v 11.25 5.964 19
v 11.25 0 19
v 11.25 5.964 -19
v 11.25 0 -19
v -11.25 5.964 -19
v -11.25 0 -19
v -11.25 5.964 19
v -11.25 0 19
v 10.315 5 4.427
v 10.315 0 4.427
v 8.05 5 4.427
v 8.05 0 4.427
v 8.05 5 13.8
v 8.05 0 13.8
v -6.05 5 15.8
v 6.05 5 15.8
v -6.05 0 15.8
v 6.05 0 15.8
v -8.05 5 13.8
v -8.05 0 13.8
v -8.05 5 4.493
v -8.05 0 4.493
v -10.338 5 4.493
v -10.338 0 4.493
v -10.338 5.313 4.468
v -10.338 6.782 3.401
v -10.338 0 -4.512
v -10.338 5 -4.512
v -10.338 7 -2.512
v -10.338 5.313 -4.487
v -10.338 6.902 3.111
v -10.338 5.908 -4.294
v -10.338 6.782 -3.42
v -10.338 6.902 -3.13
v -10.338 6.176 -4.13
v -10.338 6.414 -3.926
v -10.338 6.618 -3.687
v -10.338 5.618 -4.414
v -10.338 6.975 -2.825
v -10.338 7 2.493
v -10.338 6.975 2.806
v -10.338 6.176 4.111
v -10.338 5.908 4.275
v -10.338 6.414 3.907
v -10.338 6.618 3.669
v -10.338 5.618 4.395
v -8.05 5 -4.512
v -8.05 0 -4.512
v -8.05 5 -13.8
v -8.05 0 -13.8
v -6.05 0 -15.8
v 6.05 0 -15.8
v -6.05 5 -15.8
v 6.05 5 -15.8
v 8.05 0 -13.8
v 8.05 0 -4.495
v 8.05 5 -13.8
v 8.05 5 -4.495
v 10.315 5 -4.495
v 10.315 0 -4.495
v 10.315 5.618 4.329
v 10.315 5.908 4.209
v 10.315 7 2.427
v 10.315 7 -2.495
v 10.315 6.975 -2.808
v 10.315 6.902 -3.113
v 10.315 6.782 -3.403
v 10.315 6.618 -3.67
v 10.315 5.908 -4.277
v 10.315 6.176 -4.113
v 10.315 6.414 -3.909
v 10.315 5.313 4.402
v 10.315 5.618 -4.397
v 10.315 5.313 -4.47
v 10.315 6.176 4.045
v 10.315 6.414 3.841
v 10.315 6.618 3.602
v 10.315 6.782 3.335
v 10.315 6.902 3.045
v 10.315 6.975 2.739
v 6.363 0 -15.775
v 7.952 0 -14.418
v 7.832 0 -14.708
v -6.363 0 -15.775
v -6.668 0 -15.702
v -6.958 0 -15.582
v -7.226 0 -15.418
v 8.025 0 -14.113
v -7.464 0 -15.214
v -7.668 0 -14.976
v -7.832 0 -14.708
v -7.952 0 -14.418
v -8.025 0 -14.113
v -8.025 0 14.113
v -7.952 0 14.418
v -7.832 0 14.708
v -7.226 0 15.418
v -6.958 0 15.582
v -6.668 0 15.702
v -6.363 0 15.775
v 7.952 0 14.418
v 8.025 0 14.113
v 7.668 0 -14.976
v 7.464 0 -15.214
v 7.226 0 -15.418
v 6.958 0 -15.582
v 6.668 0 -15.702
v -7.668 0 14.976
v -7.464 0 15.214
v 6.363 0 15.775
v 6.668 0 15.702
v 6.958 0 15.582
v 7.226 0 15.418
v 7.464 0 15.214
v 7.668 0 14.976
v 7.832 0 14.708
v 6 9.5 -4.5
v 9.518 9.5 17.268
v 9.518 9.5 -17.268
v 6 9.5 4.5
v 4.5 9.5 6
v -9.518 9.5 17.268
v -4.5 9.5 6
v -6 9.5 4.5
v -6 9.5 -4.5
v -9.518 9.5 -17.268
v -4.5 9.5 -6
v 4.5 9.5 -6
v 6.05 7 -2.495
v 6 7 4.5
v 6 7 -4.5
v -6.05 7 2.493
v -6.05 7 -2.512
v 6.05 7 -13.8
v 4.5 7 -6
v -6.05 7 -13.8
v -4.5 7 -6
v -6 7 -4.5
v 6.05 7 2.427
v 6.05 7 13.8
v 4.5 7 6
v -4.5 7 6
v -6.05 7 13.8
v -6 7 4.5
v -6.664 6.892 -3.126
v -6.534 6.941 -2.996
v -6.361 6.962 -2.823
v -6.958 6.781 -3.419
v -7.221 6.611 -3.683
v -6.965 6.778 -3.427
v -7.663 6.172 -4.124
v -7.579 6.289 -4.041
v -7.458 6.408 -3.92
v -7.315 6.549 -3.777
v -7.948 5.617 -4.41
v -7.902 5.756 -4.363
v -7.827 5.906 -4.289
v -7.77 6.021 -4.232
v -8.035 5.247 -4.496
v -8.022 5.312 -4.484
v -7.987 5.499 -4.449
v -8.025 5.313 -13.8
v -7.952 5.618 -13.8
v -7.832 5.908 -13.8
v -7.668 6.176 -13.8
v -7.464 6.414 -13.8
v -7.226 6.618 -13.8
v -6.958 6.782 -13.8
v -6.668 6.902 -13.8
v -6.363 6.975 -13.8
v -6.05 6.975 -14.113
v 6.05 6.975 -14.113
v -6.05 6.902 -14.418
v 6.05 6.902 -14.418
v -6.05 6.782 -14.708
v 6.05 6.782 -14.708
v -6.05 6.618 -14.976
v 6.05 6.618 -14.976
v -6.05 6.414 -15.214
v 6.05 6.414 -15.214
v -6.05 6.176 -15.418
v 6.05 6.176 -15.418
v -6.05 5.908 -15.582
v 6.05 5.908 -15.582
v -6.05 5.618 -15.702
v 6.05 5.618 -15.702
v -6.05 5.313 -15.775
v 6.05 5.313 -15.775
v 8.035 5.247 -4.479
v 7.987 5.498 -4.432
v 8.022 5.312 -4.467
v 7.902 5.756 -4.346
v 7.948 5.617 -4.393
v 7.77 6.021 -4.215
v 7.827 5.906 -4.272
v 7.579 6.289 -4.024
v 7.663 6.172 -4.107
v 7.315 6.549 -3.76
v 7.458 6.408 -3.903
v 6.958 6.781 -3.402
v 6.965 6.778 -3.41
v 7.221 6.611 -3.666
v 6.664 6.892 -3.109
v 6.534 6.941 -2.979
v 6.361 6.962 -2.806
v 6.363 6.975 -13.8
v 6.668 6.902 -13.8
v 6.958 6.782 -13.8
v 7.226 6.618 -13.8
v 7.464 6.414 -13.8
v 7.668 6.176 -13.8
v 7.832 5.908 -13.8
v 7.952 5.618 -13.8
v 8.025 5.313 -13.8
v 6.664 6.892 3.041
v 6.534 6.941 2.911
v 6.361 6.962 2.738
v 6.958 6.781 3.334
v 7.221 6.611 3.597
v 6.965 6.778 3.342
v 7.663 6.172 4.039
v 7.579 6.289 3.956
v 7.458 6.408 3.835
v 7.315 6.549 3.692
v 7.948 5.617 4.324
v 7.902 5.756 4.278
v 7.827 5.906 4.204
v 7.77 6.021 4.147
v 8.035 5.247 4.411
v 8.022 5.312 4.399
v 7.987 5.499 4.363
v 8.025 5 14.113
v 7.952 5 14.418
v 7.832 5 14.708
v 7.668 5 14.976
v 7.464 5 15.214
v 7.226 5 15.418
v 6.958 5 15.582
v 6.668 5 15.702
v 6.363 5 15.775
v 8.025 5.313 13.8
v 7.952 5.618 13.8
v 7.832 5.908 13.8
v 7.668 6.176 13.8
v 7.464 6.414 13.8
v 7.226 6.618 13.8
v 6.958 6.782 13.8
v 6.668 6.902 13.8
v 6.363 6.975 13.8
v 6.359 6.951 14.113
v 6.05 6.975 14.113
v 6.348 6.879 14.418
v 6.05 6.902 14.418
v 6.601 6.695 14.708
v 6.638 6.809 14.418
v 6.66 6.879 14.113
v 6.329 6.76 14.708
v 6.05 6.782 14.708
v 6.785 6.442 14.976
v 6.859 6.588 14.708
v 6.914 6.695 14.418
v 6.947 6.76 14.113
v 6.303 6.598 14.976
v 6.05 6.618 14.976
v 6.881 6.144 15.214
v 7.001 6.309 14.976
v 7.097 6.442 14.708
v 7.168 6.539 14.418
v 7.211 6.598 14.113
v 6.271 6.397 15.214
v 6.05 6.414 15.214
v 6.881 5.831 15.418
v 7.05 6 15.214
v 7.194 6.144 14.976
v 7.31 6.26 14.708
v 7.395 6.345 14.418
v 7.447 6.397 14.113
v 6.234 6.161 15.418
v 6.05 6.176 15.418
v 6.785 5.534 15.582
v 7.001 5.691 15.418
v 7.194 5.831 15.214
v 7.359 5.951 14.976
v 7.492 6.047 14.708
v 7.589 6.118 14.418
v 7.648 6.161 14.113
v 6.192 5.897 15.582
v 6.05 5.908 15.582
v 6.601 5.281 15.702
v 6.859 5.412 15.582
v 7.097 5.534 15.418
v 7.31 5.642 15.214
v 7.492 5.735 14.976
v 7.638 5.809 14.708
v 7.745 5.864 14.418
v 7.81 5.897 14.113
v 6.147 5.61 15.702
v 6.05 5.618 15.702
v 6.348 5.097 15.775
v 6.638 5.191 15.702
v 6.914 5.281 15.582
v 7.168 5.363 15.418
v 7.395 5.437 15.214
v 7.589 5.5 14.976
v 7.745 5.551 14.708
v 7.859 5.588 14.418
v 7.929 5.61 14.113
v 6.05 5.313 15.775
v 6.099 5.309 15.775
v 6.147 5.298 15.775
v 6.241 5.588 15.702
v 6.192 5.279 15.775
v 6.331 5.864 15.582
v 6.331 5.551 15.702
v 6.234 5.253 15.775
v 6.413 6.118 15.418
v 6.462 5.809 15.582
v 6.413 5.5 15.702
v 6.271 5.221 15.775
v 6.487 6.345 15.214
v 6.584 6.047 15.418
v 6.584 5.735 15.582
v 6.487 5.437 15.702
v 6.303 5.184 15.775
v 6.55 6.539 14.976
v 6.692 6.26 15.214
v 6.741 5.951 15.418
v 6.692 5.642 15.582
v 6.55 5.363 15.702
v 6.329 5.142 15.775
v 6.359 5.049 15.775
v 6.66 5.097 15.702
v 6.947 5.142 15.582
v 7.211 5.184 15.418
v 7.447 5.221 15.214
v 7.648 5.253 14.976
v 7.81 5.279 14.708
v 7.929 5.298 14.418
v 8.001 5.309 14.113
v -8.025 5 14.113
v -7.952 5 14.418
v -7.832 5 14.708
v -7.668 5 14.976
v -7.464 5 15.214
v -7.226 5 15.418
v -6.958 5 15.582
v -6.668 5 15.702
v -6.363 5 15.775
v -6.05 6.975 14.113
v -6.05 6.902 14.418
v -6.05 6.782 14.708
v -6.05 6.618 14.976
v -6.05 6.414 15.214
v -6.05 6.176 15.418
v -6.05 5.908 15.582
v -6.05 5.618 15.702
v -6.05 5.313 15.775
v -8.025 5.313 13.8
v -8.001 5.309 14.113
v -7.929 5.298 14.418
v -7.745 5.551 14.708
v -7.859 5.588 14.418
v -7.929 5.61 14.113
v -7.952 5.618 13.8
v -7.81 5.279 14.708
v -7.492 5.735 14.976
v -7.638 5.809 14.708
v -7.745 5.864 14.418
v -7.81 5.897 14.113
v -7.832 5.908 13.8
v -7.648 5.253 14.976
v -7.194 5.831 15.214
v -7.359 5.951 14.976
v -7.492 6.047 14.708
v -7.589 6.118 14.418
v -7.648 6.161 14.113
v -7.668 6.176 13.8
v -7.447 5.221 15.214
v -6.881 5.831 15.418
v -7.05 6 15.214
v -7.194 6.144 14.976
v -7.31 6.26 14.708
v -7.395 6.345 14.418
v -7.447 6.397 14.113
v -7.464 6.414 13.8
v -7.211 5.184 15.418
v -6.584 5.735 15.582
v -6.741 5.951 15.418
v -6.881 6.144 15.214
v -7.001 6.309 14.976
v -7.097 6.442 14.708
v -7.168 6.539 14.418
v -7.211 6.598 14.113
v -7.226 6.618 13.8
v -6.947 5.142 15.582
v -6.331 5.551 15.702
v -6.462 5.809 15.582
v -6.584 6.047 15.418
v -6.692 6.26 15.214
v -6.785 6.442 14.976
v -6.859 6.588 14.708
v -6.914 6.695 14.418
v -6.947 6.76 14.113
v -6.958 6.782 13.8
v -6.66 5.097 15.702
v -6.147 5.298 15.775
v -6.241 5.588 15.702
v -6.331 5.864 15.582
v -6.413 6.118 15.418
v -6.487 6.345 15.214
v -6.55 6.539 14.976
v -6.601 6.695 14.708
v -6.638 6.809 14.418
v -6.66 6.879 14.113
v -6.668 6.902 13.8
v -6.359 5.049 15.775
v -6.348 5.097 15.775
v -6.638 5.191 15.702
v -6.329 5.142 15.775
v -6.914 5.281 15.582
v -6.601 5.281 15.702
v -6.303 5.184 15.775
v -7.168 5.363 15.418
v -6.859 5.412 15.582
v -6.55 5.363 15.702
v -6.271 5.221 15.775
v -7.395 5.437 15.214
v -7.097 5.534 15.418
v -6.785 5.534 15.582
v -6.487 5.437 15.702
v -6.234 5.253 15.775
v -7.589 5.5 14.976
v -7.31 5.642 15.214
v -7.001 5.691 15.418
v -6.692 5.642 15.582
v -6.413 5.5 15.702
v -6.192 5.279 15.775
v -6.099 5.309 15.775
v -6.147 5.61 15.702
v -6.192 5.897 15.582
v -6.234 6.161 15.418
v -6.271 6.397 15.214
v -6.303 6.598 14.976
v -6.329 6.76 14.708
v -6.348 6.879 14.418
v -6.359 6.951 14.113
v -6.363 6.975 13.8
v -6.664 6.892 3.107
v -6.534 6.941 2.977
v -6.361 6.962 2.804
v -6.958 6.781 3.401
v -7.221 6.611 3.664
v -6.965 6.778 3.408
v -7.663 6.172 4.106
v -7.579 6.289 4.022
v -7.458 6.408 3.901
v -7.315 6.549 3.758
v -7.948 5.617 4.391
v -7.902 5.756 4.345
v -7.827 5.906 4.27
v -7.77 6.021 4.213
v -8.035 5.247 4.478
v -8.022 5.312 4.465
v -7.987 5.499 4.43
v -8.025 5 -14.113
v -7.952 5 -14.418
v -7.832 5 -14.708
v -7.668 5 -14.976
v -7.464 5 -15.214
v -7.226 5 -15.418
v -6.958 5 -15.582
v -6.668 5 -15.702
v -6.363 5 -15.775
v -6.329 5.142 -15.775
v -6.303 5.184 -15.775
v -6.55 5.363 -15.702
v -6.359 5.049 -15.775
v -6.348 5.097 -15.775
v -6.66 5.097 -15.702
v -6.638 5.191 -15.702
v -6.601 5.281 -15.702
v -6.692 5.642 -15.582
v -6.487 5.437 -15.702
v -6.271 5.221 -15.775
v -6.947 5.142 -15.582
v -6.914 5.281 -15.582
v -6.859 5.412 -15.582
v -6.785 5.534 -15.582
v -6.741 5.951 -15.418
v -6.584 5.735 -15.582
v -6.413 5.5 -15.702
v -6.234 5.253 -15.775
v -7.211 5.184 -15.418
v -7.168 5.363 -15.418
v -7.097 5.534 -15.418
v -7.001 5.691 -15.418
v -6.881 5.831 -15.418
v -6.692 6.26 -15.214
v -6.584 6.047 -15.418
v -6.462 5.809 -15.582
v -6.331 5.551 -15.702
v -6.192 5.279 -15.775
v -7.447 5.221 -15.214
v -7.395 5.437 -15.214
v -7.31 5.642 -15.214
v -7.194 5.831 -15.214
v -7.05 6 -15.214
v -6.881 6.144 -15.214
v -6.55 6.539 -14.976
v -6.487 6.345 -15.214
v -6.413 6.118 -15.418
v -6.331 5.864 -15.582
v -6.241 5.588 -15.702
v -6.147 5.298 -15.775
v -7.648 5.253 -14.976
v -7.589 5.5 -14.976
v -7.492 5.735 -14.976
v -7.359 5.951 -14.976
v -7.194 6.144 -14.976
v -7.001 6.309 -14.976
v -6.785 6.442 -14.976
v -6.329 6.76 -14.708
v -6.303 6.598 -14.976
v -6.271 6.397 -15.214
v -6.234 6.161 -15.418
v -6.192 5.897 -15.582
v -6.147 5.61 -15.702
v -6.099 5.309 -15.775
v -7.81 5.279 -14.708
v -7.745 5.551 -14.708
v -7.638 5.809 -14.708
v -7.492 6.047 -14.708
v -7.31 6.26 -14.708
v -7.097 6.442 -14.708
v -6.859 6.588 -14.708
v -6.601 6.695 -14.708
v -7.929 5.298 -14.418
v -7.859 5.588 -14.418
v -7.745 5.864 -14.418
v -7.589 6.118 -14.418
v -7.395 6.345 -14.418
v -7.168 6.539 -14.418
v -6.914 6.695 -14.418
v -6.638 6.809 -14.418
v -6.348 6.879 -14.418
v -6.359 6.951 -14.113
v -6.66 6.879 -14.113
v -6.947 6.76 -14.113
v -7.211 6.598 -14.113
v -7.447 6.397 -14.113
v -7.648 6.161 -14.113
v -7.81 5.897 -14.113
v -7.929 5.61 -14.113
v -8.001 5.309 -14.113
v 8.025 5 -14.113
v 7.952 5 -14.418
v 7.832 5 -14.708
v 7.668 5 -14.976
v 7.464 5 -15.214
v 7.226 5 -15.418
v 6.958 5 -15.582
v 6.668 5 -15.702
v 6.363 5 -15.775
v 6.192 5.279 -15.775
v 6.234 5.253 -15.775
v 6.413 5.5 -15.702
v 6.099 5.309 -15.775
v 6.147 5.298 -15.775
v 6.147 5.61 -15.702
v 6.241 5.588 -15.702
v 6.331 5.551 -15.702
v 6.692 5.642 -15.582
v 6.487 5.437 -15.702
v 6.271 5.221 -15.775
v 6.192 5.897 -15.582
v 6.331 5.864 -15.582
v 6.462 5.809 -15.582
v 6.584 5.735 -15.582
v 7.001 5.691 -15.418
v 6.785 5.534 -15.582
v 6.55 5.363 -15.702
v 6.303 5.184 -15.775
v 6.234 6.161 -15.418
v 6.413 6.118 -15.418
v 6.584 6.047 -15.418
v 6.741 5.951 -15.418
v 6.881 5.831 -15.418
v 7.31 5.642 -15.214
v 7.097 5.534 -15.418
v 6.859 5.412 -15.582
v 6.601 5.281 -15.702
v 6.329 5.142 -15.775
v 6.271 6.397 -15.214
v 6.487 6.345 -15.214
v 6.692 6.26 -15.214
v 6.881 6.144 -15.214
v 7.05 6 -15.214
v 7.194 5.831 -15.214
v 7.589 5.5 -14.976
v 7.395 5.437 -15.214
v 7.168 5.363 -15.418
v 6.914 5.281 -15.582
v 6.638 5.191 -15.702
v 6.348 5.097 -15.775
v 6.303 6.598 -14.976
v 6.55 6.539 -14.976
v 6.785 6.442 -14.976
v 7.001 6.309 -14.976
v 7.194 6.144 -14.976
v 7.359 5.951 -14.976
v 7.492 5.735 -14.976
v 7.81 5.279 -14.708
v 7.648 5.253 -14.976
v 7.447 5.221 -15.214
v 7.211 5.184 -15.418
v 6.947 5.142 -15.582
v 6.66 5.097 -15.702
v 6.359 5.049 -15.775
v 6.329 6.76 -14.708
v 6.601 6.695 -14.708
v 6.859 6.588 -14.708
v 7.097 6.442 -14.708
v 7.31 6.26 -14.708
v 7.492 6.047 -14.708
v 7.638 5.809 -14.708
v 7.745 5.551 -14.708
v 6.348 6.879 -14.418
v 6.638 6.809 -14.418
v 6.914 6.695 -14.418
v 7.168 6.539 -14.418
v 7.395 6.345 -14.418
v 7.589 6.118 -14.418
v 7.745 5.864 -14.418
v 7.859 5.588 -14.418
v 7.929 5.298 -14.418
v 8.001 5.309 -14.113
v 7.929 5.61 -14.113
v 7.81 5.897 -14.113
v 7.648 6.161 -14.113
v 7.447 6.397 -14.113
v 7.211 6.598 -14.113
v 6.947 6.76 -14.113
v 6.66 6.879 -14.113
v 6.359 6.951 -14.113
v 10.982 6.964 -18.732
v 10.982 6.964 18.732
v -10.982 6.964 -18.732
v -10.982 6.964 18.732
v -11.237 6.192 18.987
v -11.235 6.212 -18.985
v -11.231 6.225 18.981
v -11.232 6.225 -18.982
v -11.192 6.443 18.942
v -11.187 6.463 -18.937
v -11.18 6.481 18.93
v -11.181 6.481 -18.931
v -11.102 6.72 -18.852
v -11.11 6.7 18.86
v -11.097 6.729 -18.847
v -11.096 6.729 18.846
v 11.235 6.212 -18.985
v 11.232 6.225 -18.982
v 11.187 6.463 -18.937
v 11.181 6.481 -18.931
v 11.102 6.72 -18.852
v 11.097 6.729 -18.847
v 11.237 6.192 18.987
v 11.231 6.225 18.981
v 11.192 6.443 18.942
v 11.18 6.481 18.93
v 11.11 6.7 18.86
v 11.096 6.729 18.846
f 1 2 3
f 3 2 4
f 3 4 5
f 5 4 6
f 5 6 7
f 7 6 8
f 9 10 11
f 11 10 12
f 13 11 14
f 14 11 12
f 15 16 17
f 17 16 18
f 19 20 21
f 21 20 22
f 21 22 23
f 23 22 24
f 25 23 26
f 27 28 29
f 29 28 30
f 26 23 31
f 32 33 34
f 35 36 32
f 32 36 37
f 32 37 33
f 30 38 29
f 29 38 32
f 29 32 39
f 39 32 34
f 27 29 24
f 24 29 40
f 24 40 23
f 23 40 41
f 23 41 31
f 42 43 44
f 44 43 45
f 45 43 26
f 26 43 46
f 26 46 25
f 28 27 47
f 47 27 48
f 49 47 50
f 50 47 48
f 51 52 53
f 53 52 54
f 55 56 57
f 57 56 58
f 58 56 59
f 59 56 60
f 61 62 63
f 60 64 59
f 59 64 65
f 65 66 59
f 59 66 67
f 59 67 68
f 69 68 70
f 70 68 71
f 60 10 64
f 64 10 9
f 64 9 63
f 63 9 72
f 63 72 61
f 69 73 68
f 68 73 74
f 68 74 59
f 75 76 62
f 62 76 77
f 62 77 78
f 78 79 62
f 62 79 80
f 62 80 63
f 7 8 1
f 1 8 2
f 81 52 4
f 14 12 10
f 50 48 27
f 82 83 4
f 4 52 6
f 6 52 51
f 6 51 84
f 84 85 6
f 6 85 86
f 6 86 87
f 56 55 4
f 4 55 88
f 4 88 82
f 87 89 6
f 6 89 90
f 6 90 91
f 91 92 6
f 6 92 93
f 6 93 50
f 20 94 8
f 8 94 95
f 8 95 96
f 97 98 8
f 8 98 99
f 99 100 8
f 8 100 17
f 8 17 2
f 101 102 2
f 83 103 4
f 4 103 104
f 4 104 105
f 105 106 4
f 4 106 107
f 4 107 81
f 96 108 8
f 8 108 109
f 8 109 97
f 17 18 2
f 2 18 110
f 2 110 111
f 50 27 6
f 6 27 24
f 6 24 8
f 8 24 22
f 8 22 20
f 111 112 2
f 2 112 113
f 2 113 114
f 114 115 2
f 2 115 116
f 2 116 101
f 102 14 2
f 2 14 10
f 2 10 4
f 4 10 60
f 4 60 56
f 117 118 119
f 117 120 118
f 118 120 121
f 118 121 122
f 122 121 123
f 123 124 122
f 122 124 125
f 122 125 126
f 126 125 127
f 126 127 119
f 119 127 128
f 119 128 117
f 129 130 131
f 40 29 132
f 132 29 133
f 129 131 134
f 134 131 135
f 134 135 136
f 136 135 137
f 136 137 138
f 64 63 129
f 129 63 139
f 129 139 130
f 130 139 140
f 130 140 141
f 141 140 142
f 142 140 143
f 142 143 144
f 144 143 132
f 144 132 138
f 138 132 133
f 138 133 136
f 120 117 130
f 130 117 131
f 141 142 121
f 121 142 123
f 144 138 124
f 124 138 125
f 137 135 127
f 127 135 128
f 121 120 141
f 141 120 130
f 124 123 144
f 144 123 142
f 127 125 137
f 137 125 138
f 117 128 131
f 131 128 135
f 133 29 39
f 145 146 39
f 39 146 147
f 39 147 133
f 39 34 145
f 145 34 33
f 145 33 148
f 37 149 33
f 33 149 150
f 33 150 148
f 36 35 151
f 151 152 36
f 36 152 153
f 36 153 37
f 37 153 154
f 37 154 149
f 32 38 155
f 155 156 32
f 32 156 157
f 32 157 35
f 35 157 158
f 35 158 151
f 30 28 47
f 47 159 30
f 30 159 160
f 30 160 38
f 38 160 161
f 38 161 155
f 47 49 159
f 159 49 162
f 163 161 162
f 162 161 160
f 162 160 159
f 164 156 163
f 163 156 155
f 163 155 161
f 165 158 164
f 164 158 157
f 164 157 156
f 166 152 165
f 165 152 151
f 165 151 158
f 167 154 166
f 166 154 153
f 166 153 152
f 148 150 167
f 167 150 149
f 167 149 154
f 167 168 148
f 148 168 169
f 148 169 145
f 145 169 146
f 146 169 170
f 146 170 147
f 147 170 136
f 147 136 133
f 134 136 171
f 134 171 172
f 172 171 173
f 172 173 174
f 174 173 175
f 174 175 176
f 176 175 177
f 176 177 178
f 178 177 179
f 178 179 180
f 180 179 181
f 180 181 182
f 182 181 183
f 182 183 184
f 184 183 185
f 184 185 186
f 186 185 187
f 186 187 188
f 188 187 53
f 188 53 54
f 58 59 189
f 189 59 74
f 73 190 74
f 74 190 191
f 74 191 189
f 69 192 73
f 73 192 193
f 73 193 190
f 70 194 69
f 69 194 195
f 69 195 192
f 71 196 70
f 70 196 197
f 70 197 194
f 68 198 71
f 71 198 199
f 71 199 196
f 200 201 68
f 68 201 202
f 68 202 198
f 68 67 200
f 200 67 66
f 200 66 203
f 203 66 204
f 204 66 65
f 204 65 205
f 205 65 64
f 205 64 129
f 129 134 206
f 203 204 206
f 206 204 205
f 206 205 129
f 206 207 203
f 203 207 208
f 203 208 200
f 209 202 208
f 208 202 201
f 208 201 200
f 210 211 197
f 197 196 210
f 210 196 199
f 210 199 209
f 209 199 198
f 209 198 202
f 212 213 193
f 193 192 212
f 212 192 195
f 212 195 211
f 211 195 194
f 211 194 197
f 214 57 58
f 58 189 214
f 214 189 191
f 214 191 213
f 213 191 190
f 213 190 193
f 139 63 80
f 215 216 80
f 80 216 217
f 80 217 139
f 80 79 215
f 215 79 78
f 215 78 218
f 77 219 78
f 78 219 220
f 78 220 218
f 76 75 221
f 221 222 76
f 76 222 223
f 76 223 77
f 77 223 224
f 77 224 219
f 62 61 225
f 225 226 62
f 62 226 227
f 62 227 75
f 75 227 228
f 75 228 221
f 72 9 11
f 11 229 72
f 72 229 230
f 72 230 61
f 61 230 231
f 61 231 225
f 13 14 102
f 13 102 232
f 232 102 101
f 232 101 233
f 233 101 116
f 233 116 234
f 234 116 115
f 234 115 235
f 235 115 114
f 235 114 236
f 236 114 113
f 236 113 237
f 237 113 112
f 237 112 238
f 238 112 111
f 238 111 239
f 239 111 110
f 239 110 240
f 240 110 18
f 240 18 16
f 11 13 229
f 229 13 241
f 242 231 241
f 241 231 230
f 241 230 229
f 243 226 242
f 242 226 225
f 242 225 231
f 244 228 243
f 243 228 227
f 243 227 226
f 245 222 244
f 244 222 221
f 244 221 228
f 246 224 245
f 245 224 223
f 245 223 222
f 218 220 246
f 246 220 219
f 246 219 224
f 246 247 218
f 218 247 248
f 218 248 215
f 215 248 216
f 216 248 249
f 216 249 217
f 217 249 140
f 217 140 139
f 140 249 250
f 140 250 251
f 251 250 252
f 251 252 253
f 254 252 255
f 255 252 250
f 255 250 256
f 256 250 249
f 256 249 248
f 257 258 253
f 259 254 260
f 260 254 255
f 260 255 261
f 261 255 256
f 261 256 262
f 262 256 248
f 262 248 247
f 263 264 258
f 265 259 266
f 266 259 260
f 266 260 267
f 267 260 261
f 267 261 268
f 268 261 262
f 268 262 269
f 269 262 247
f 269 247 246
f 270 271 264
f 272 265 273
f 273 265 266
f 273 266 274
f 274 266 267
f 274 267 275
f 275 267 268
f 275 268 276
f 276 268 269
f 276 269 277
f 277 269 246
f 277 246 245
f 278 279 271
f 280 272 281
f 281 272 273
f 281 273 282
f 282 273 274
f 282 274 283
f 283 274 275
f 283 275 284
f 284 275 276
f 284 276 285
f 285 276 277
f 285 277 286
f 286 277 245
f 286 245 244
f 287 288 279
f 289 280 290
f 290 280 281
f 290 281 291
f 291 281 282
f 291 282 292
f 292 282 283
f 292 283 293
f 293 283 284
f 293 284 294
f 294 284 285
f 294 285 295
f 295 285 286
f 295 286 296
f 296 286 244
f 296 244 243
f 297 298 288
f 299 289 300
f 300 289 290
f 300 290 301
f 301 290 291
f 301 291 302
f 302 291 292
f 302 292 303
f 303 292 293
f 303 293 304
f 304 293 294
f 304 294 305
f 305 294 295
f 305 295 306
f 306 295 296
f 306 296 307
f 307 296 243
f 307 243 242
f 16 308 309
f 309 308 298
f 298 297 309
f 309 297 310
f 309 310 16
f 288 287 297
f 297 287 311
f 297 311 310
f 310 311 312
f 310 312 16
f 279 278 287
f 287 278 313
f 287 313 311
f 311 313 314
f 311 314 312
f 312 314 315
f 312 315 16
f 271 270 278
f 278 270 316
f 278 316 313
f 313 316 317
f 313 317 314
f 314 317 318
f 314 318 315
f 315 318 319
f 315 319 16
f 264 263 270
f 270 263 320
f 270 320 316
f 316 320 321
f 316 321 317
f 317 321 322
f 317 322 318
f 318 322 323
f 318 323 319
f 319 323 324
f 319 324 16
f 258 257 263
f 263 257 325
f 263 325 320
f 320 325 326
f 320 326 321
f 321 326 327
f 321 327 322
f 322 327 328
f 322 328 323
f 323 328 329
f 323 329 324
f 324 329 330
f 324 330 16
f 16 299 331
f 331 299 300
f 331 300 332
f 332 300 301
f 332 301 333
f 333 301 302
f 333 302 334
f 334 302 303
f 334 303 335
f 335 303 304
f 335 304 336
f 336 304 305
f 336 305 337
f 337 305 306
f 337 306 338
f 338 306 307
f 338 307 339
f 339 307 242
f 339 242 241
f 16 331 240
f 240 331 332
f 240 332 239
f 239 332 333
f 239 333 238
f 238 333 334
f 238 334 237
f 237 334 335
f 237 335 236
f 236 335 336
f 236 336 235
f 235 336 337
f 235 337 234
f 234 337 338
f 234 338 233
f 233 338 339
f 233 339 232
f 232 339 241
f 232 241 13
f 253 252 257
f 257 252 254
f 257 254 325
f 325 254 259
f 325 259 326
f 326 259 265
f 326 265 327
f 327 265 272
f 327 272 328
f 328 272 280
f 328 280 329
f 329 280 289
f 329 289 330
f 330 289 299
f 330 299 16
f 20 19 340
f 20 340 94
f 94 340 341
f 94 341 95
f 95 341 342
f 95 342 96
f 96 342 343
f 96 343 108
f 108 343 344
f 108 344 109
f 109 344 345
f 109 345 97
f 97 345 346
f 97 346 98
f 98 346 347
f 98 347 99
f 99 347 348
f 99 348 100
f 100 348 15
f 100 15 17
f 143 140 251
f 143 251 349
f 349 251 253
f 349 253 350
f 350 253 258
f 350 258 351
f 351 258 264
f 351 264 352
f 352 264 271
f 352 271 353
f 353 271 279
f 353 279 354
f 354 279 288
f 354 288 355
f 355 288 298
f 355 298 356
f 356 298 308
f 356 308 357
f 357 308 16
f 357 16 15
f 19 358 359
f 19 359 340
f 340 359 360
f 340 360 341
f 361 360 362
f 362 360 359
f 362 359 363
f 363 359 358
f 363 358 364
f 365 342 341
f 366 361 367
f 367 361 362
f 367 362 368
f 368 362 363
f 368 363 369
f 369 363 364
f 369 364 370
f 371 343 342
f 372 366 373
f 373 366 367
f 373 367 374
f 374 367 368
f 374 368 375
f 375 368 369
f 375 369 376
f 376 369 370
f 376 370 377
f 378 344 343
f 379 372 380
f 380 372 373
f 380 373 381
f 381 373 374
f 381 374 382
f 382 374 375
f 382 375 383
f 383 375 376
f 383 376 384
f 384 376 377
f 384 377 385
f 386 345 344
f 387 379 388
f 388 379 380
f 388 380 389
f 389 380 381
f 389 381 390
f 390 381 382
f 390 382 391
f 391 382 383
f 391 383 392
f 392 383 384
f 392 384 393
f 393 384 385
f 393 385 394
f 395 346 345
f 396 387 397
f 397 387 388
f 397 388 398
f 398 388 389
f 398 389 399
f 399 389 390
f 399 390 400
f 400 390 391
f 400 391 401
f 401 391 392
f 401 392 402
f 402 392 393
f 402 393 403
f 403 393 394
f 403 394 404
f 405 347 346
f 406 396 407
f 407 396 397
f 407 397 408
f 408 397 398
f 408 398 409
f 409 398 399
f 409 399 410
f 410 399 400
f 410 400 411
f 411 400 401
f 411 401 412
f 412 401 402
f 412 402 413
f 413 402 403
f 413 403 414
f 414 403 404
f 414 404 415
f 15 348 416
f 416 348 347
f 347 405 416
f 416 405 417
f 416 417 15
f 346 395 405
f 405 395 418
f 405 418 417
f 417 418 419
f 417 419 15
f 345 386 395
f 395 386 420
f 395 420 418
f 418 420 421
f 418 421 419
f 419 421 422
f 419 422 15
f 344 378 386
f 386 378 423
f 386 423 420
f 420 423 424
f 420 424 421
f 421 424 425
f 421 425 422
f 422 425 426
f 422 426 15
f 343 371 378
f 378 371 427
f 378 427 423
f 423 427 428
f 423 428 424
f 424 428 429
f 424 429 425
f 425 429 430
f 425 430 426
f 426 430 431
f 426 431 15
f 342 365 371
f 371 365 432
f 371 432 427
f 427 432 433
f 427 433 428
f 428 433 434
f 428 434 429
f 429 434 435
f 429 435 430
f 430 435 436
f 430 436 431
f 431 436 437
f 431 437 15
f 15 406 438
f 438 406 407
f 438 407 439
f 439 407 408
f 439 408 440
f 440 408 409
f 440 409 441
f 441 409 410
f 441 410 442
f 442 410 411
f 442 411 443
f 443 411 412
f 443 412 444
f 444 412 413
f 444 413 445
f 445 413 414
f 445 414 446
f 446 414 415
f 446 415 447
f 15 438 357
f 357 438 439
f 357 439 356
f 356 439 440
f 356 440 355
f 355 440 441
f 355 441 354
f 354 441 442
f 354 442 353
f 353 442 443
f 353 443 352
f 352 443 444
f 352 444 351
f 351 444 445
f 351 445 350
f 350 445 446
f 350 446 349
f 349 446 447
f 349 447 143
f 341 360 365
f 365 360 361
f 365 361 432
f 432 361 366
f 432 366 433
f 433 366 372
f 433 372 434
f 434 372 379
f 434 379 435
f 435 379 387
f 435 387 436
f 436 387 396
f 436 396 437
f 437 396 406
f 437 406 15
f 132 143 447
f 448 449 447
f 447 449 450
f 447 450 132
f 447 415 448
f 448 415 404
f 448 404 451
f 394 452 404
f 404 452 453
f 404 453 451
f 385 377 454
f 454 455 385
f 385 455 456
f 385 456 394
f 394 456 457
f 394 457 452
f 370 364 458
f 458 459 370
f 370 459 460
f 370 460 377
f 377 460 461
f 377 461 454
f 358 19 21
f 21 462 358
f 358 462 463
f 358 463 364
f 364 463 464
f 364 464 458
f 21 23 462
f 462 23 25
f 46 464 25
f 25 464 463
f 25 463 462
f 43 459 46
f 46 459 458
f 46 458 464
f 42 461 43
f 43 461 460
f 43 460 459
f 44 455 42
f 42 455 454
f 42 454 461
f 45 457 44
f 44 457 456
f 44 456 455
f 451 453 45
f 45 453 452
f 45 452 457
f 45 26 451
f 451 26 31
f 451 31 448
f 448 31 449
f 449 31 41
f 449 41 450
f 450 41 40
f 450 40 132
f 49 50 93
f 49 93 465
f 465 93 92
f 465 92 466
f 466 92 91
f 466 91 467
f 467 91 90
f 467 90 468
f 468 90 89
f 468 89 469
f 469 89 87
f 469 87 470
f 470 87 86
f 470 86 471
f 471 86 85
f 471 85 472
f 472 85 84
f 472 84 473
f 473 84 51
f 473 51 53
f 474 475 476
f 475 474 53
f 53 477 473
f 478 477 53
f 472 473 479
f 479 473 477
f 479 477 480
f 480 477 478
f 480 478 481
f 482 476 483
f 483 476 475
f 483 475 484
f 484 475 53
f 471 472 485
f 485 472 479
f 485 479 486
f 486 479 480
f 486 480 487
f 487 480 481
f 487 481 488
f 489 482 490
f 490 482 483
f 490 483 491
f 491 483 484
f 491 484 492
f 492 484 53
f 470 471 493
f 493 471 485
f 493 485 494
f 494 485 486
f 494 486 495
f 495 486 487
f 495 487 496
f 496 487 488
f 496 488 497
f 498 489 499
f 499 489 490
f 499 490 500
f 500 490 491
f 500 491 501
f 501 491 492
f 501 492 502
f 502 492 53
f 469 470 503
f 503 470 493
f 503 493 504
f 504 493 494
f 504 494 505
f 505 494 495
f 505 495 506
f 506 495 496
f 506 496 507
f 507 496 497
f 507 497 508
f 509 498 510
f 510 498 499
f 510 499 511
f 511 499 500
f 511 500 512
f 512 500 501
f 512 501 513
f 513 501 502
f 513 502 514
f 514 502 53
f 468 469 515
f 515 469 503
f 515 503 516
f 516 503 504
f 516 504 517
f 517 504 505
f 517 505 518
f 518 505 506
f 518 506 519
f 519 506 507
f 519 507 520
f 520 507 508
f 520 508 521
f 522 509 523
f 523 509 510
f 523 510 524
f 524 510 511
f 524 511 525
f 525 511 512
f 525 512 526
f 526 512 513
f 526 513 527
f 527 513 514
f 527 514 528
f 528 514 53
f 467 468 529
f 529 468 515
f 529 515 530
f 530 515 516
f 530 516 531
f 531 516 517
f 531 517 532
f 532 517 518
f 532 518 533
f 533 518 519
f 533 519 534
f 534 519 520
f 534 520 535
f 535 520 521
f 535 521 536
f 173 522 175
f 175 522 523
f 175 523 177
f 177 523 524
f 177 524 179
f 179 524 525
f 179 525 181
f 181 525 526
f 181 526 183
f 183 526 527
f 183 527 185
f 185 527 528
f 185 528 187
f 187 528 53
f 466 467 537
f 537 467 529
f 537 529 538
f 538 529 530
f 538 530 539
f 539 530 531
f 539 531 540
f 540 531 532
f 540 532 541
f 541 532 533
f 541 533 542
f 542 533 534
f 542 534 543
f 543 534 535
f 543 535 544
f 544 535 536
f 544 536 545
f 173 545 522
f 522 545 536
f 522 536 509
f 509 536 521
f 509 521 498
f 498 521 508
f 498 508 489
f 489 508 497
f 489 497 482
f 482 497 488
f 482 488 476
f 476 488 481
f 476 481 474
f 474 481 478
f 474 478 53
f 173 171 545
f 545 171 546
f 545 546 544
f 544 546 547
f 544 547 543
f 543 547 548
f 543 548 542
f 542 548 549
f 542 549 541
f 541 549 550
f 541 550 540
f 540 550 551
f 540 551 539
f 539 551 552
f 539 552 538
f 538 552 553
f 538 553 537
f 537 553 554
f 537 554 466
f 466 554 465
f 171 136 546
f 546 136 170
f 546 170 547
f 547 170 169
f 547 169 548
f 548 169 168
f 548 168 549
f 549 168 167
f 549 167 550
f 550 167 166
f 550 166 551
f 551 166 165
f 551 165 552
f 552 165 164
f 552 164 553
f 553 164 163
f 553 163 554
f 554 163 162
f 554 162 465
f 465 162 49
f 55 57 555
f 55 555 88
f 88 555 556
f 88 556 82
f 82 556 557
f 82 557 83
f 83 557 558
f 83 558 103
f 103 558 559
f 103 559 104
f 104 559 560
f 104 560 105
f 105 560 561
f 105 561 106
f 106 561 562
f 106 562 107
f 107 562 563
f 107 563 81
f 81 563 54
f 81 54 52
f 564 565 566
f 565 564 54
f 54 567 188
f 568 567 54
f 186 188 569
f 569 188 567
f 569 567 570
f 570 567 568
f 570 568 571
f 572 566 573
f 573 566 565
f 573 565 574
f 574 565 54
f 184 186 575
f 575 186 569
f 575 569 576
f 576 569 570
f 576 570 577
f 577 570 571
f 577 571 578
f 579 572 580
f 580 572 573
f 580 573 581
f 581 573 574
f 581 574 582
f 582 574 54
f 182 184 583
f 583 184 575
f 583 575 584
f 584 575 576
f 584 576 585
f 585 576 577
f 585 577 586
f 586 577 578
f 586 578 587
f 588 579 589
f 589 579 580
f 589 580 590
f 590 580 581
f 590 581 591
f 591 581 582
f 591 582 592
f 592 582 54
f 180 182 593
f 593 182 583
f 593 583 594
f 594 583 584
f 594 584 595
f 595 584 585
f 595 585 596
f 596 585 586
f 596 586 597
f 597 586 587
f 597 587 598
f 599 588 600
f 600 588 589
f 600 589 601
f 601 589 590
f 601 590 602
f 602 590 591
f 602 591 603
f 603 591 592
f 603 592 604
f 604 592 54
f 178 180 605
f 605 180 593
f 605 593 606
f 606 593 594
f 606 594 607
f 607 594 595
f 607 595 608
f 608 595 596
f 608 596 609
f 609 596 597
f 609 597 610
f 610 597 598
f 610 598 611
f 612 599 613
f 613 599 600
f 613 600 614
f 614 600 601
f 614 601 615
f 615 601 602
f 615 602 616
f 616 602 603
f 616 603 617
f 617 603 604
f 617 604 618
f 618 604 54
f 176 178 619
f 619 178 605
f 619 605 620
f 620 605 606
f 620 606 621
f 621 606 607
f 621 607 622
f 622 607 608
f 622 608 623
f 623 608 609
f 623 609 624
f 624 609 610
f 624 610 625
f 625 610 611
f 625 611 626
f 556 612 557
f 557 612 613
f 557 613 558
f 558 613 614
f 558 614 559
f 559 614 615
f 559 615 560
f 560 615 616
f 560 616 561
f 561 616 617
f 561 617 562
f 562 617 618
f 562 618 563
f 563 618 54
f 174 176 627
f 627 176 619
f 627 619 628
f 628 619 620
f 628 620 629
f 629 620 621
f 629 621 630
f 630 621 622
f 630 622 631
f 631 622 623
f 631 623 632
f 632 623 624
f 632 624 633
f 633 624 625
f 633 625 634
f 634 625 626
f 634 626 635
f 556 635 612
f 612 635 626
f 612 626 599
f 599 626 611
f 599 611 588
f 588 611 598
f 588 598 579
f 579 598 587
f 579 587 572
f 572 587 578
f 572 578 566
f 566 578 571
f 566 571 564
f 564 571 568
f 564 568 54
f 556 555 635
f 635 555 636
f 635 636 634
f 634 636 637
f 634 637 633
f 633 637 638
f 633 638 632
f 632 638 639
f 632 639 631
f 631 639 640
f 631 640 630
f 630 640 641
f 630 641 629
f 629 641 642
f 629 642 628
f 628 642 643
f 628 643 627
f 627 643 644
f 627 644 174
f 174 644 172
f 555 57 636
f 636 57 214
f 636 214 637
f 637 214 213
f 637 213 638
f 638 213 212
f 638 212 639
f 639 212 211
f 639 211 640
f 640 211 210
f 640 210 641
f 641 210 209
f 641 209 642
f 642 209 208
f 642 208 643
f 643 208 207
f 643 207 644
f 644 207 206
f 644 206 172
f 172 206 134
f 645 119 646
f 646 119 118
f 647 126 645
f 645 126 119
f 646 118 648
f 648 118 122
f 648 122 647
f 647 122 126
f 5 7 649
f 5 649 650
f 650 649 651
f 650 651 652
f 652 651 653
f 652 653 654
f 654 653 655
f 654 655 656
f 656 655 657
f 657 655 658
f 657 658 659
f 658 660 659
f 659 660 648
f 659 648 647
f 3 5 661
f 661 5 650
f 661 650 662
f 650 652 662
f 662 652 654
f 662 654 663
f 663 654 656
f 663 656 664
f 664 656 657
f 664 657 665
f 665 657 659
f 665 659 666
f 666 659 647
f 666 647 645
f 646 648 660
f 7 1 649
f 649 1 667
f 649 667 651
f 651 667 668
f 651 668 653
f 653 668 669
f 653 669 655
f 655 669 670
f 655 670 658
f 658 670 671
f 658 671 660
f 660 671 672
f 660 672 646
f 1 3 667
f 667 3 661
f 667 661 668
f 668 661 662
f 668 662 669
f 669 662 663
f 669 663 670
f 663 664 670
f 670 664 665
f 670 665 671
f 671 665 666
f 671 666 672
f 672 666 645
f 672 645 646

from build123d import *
from OCP.BRepFilletAPI import BRepFilletAPI_MakeChamfer

# Parameters (mm, degrees)
SKETCH1_W           = 22.5
SKETCH1_H           = 38
BOSS_EXTRUDE2_DEPTH = 7
SKETCH2_W           = 22.5
SKETCH2_H           = 38
BOSS_EXTRUDE4_DEPTH = 2.5
SKETCH3_W           = 12
SKETCH3_H           = 12
CUT_EXTRUDE1_DEPTH  = 2.5
CHAMFER1_SIZE       = 1.5
FILLET3_R           = 2
FILLET4_R           = 2
CHAMFER2_SIZE       = 3
CHAMFER2_SIZE2      = 1.732050808
FILLET5_R           = 2


with BuildPart() as part:
    # Sketch1 → Boss-Extrude2 (new body)
    with BuildSketch(Plane(origin=(0, 0, 0), x_dir=(1, 0, 0), z_dir=(0, 1, 0))):
        Rectangle(SKETCH1_W, SKETCH1_H)
        Polygon((-8.05, -15.8), (-8.05, -4.492937268), (-10.337901284, -4.492937268), (-10.337901284, 0), (-10.337901284, 4.511829369), (-8.05, 4.511829369), (-8.05, 15.8), (8.05, 15.8), (8.05, 4.494825775), (10.314669875, 4.494825775), (10.314669875, 0), (10.314669875, -4.426605317), (8.05, -4.426605317), (8.05, -15.8), align=None, mode=Mode.SUBTRACT)
    extrude(amount=BOSS_EXTRUDE2_DEPTH)

    # Sketch2 → Boss-Extrude4 (add)
    with BuildSketch(Plane(origin=(0, 7, 0), x_dir=(1, 0, 0), z_dir=(0, 1, 0))):
        Rectangle(SKETCH2_W, SKETCH2_H)
    extrude(amount=BOSS_EXTRUDE4_DEPTH)

    # Sketch3 → Cut-Extrude1 (cut)
    with BuildSketch(Plane(origin=(0, 9.5, 0), x_dir=(1, 0, 0), z_dir=(0, 1, 0))):
        Rectangle(SKETCH3_W, SKETCH3_H)
    extrude(amount=-CUT_EXTRUDE1_DEPTH, mode=Mode.SUBTRACT)

    # Chamfer1
    chamfer1_edges = [part.edges().sort_by_distance(p)[0] for p in [
        (6, 8.25, -6),
        (6, 8.25, 6),
        (-6, 8.25, 6),
        (-6, 8.25, -6),
    ]]
    chamfer(chamfer1_edges, length=CHAMFER1_SIZE)

    # Fillet3
    fillet3_edges = [part.edges().sort_by_distance(p)[0] for p in [
        (8.05, 7, 10.113302659),
        (0, 7, 15.8),
        (-8.05, 7, 10.146468634),
        (-9.193950642, 7, 4.492937268),
        (-8.05, 3.5, 15.8),
        (8.05, 3.5, 15.8),
        (-9.193950642, 7, -4.511829369),
        (-8.05, 7, -10.155914685),
        (0, 7, -15.8),
        (8.05, 7, -10.147412887),
        (9.182334937, 7, -4.494825775),
        (9.182334937, 7, 4.426605317),
    ]]
    fillet(fillet3_edges, radius=FILLET3_R)

    # Fillet4
    # the kernel refuses this fillet: 2 mm, written as the material it adds along each edge
    with BuildSketch(Plane(origin=(-6.05, 5, -13.8), x_dir=(-1, 0, 0), z_dir=(0, 0, -1))) as fillet4_piece_1_section:
        Polygon((0, 0), (FILLET4_R, 0), (FILLET4_R, FILLET4_R), (0, FILLET4_R), align=None)
    fillet4_piece_1 = extrude(amount=FILLET4_R, mode=Mode.PRIVATE)
    fillet4_piece_1 = fillet4_piece_1 - Plane(origin=(-6.05, 5, -13.8), x_dir=(0.7071067811865475, -0.7071067811865475, 0), z_dir=(0, 0, -1)) * Sphere(FILLET4_R, mode=Mode.PRIVATE)
    add(fillet4_piece_1)
    with BuildSketch(Plane(origin=(6.05, 5, -13.8), x_dir=(0, 0, -1), z_dir=(1, 0, 0))) as fillet4_piece_2_section:
        Polygon((0, 0), (FILLET4_R, 0), (FILLET4_R, FILLET4_R), (0, FILLET4_R), align=None)
    fillet4_piece_2 = extrude(amount=FILLET4_R, mode=Mode.PRIVATE)
    fillet4_piece_2 = fillet4_piece_2 - Plane(origin=(6.05, 5, -13.8), x_dir=(0, -0.7071067811865475, 0.7071067811865475), z_dir=(1, 0, 0)) * Sphere(FILLET4_R, mode=Mode.PRIVATE)
    add(fillet4_piece_2)
    with BuildSketch(Plane(origin=(8.05, 0, -15.8), x_dir=(0, 0, 1), z_dir=(0, 1, 0)), Plane(origin=(-8.05, 0, -15.8), x_dir=(1, 0, 0), z_dir=(0, 1, 0))) as fillet4_piece_3:
        with BuildLine():
            CenterArc((FILLET4_R, -FILLET4_R), FILLET4_R, 90, 90)
            Line((0, -FILLET4_R), (0, 0))
            Line((0, 0), (FILLET4_R, 0))
        make_face()
    extrude(amount=5)

    # Chamfer2: one chamfer whose edges measure the first distance from different faces: ONE call of the kernel's chamfer builder (chamfer() names one face for all edges)
    chamfer2_edges_1 = [part.edges().sort_by_distance(p)[0] for p in [
        (11.25, 9.5, 0),
    ]]
    chamfer2_side_1 = [part.faces().sort_by_distance(p)[0] for p in [
        (11.25, 4.75, 0),
    ]]
    chamfer2_edges_2 = [part.edges().sort_by_distance(p)[0] for p in [
        (0, 9.5, -19),
    ]]
    chamfer2_side_2 = [part.faces().sort_by_distance(p)[0] for p in [
        (0, 4.75, -19),
    ]]
    chamfer2_edges_3 = [part.edges().sort_by_distance(p)[0] for p in [
        (-11.25, 9.5, 0),
    ]]
    chamfer2_side_3 = [part.faces().sort_by_distance(p)[0] for p in [
        (-11.25, 4.75, 0),
    ]]
    chamfer2_edges_4 = [part.edges().sort_by_distance(p)[0] for p in [
        (0, 9.5, 19),
    ]]
    chamfer2_side_4 = [part.faces().sort_by_distance(p)[0] for p in [
        (0, 4.75, 19),
    ]]
    chamfer2 = BRepFilletAPI_MakeChamfer(part.part.solid().wrapped)
    for e in chamfer2_edges_1:
        chamfer2.Add(CHAMFER2_SIZE, CHAMFER2_SIZE2, e.wrapped, chamfer2_side_1[0].wrapped)  # the first distance lies on this face
    for e in chamfer2_edges_2:
        chamfer2.Add(CHAMFER2_SIZE, CHAMFER2_SIZE2, e.wrapped, chamfer2_side_2[0].wrapped)  # the first distance lies on this face
    for e in chamfer2_edges_3:
        chamfer2.Add(CHAMFER2_SIZE, CHAMFER2_SIZE2, e.wrapped, chamfer2_side_3[0].wrapped)  # the first distance lies on this face
    for e in chamfer2_edges_4:
        chamfer2.Add(CHAMFER2_SIZE, CHAMFER2_SIZE2, e.wrapped, chamfer2_side_4[0].wrapped)  # the first distance lies on this face
    add(Compound.cast(chamfer2.Shape()), mode=Mode.REPLACE)

    # Fillet5
    fillet5_edges = [part.edges().sort_by_distance(p)[0] for p in [
        (-11.25, 6.5, 0),
        (0, 6.5, -19),
        (11.25, 6.5, 0),
        (0, 6.5, 19),
    ]]
    fillet(fillet5_edges, radius=FILLET5_R)


solid = part.part
